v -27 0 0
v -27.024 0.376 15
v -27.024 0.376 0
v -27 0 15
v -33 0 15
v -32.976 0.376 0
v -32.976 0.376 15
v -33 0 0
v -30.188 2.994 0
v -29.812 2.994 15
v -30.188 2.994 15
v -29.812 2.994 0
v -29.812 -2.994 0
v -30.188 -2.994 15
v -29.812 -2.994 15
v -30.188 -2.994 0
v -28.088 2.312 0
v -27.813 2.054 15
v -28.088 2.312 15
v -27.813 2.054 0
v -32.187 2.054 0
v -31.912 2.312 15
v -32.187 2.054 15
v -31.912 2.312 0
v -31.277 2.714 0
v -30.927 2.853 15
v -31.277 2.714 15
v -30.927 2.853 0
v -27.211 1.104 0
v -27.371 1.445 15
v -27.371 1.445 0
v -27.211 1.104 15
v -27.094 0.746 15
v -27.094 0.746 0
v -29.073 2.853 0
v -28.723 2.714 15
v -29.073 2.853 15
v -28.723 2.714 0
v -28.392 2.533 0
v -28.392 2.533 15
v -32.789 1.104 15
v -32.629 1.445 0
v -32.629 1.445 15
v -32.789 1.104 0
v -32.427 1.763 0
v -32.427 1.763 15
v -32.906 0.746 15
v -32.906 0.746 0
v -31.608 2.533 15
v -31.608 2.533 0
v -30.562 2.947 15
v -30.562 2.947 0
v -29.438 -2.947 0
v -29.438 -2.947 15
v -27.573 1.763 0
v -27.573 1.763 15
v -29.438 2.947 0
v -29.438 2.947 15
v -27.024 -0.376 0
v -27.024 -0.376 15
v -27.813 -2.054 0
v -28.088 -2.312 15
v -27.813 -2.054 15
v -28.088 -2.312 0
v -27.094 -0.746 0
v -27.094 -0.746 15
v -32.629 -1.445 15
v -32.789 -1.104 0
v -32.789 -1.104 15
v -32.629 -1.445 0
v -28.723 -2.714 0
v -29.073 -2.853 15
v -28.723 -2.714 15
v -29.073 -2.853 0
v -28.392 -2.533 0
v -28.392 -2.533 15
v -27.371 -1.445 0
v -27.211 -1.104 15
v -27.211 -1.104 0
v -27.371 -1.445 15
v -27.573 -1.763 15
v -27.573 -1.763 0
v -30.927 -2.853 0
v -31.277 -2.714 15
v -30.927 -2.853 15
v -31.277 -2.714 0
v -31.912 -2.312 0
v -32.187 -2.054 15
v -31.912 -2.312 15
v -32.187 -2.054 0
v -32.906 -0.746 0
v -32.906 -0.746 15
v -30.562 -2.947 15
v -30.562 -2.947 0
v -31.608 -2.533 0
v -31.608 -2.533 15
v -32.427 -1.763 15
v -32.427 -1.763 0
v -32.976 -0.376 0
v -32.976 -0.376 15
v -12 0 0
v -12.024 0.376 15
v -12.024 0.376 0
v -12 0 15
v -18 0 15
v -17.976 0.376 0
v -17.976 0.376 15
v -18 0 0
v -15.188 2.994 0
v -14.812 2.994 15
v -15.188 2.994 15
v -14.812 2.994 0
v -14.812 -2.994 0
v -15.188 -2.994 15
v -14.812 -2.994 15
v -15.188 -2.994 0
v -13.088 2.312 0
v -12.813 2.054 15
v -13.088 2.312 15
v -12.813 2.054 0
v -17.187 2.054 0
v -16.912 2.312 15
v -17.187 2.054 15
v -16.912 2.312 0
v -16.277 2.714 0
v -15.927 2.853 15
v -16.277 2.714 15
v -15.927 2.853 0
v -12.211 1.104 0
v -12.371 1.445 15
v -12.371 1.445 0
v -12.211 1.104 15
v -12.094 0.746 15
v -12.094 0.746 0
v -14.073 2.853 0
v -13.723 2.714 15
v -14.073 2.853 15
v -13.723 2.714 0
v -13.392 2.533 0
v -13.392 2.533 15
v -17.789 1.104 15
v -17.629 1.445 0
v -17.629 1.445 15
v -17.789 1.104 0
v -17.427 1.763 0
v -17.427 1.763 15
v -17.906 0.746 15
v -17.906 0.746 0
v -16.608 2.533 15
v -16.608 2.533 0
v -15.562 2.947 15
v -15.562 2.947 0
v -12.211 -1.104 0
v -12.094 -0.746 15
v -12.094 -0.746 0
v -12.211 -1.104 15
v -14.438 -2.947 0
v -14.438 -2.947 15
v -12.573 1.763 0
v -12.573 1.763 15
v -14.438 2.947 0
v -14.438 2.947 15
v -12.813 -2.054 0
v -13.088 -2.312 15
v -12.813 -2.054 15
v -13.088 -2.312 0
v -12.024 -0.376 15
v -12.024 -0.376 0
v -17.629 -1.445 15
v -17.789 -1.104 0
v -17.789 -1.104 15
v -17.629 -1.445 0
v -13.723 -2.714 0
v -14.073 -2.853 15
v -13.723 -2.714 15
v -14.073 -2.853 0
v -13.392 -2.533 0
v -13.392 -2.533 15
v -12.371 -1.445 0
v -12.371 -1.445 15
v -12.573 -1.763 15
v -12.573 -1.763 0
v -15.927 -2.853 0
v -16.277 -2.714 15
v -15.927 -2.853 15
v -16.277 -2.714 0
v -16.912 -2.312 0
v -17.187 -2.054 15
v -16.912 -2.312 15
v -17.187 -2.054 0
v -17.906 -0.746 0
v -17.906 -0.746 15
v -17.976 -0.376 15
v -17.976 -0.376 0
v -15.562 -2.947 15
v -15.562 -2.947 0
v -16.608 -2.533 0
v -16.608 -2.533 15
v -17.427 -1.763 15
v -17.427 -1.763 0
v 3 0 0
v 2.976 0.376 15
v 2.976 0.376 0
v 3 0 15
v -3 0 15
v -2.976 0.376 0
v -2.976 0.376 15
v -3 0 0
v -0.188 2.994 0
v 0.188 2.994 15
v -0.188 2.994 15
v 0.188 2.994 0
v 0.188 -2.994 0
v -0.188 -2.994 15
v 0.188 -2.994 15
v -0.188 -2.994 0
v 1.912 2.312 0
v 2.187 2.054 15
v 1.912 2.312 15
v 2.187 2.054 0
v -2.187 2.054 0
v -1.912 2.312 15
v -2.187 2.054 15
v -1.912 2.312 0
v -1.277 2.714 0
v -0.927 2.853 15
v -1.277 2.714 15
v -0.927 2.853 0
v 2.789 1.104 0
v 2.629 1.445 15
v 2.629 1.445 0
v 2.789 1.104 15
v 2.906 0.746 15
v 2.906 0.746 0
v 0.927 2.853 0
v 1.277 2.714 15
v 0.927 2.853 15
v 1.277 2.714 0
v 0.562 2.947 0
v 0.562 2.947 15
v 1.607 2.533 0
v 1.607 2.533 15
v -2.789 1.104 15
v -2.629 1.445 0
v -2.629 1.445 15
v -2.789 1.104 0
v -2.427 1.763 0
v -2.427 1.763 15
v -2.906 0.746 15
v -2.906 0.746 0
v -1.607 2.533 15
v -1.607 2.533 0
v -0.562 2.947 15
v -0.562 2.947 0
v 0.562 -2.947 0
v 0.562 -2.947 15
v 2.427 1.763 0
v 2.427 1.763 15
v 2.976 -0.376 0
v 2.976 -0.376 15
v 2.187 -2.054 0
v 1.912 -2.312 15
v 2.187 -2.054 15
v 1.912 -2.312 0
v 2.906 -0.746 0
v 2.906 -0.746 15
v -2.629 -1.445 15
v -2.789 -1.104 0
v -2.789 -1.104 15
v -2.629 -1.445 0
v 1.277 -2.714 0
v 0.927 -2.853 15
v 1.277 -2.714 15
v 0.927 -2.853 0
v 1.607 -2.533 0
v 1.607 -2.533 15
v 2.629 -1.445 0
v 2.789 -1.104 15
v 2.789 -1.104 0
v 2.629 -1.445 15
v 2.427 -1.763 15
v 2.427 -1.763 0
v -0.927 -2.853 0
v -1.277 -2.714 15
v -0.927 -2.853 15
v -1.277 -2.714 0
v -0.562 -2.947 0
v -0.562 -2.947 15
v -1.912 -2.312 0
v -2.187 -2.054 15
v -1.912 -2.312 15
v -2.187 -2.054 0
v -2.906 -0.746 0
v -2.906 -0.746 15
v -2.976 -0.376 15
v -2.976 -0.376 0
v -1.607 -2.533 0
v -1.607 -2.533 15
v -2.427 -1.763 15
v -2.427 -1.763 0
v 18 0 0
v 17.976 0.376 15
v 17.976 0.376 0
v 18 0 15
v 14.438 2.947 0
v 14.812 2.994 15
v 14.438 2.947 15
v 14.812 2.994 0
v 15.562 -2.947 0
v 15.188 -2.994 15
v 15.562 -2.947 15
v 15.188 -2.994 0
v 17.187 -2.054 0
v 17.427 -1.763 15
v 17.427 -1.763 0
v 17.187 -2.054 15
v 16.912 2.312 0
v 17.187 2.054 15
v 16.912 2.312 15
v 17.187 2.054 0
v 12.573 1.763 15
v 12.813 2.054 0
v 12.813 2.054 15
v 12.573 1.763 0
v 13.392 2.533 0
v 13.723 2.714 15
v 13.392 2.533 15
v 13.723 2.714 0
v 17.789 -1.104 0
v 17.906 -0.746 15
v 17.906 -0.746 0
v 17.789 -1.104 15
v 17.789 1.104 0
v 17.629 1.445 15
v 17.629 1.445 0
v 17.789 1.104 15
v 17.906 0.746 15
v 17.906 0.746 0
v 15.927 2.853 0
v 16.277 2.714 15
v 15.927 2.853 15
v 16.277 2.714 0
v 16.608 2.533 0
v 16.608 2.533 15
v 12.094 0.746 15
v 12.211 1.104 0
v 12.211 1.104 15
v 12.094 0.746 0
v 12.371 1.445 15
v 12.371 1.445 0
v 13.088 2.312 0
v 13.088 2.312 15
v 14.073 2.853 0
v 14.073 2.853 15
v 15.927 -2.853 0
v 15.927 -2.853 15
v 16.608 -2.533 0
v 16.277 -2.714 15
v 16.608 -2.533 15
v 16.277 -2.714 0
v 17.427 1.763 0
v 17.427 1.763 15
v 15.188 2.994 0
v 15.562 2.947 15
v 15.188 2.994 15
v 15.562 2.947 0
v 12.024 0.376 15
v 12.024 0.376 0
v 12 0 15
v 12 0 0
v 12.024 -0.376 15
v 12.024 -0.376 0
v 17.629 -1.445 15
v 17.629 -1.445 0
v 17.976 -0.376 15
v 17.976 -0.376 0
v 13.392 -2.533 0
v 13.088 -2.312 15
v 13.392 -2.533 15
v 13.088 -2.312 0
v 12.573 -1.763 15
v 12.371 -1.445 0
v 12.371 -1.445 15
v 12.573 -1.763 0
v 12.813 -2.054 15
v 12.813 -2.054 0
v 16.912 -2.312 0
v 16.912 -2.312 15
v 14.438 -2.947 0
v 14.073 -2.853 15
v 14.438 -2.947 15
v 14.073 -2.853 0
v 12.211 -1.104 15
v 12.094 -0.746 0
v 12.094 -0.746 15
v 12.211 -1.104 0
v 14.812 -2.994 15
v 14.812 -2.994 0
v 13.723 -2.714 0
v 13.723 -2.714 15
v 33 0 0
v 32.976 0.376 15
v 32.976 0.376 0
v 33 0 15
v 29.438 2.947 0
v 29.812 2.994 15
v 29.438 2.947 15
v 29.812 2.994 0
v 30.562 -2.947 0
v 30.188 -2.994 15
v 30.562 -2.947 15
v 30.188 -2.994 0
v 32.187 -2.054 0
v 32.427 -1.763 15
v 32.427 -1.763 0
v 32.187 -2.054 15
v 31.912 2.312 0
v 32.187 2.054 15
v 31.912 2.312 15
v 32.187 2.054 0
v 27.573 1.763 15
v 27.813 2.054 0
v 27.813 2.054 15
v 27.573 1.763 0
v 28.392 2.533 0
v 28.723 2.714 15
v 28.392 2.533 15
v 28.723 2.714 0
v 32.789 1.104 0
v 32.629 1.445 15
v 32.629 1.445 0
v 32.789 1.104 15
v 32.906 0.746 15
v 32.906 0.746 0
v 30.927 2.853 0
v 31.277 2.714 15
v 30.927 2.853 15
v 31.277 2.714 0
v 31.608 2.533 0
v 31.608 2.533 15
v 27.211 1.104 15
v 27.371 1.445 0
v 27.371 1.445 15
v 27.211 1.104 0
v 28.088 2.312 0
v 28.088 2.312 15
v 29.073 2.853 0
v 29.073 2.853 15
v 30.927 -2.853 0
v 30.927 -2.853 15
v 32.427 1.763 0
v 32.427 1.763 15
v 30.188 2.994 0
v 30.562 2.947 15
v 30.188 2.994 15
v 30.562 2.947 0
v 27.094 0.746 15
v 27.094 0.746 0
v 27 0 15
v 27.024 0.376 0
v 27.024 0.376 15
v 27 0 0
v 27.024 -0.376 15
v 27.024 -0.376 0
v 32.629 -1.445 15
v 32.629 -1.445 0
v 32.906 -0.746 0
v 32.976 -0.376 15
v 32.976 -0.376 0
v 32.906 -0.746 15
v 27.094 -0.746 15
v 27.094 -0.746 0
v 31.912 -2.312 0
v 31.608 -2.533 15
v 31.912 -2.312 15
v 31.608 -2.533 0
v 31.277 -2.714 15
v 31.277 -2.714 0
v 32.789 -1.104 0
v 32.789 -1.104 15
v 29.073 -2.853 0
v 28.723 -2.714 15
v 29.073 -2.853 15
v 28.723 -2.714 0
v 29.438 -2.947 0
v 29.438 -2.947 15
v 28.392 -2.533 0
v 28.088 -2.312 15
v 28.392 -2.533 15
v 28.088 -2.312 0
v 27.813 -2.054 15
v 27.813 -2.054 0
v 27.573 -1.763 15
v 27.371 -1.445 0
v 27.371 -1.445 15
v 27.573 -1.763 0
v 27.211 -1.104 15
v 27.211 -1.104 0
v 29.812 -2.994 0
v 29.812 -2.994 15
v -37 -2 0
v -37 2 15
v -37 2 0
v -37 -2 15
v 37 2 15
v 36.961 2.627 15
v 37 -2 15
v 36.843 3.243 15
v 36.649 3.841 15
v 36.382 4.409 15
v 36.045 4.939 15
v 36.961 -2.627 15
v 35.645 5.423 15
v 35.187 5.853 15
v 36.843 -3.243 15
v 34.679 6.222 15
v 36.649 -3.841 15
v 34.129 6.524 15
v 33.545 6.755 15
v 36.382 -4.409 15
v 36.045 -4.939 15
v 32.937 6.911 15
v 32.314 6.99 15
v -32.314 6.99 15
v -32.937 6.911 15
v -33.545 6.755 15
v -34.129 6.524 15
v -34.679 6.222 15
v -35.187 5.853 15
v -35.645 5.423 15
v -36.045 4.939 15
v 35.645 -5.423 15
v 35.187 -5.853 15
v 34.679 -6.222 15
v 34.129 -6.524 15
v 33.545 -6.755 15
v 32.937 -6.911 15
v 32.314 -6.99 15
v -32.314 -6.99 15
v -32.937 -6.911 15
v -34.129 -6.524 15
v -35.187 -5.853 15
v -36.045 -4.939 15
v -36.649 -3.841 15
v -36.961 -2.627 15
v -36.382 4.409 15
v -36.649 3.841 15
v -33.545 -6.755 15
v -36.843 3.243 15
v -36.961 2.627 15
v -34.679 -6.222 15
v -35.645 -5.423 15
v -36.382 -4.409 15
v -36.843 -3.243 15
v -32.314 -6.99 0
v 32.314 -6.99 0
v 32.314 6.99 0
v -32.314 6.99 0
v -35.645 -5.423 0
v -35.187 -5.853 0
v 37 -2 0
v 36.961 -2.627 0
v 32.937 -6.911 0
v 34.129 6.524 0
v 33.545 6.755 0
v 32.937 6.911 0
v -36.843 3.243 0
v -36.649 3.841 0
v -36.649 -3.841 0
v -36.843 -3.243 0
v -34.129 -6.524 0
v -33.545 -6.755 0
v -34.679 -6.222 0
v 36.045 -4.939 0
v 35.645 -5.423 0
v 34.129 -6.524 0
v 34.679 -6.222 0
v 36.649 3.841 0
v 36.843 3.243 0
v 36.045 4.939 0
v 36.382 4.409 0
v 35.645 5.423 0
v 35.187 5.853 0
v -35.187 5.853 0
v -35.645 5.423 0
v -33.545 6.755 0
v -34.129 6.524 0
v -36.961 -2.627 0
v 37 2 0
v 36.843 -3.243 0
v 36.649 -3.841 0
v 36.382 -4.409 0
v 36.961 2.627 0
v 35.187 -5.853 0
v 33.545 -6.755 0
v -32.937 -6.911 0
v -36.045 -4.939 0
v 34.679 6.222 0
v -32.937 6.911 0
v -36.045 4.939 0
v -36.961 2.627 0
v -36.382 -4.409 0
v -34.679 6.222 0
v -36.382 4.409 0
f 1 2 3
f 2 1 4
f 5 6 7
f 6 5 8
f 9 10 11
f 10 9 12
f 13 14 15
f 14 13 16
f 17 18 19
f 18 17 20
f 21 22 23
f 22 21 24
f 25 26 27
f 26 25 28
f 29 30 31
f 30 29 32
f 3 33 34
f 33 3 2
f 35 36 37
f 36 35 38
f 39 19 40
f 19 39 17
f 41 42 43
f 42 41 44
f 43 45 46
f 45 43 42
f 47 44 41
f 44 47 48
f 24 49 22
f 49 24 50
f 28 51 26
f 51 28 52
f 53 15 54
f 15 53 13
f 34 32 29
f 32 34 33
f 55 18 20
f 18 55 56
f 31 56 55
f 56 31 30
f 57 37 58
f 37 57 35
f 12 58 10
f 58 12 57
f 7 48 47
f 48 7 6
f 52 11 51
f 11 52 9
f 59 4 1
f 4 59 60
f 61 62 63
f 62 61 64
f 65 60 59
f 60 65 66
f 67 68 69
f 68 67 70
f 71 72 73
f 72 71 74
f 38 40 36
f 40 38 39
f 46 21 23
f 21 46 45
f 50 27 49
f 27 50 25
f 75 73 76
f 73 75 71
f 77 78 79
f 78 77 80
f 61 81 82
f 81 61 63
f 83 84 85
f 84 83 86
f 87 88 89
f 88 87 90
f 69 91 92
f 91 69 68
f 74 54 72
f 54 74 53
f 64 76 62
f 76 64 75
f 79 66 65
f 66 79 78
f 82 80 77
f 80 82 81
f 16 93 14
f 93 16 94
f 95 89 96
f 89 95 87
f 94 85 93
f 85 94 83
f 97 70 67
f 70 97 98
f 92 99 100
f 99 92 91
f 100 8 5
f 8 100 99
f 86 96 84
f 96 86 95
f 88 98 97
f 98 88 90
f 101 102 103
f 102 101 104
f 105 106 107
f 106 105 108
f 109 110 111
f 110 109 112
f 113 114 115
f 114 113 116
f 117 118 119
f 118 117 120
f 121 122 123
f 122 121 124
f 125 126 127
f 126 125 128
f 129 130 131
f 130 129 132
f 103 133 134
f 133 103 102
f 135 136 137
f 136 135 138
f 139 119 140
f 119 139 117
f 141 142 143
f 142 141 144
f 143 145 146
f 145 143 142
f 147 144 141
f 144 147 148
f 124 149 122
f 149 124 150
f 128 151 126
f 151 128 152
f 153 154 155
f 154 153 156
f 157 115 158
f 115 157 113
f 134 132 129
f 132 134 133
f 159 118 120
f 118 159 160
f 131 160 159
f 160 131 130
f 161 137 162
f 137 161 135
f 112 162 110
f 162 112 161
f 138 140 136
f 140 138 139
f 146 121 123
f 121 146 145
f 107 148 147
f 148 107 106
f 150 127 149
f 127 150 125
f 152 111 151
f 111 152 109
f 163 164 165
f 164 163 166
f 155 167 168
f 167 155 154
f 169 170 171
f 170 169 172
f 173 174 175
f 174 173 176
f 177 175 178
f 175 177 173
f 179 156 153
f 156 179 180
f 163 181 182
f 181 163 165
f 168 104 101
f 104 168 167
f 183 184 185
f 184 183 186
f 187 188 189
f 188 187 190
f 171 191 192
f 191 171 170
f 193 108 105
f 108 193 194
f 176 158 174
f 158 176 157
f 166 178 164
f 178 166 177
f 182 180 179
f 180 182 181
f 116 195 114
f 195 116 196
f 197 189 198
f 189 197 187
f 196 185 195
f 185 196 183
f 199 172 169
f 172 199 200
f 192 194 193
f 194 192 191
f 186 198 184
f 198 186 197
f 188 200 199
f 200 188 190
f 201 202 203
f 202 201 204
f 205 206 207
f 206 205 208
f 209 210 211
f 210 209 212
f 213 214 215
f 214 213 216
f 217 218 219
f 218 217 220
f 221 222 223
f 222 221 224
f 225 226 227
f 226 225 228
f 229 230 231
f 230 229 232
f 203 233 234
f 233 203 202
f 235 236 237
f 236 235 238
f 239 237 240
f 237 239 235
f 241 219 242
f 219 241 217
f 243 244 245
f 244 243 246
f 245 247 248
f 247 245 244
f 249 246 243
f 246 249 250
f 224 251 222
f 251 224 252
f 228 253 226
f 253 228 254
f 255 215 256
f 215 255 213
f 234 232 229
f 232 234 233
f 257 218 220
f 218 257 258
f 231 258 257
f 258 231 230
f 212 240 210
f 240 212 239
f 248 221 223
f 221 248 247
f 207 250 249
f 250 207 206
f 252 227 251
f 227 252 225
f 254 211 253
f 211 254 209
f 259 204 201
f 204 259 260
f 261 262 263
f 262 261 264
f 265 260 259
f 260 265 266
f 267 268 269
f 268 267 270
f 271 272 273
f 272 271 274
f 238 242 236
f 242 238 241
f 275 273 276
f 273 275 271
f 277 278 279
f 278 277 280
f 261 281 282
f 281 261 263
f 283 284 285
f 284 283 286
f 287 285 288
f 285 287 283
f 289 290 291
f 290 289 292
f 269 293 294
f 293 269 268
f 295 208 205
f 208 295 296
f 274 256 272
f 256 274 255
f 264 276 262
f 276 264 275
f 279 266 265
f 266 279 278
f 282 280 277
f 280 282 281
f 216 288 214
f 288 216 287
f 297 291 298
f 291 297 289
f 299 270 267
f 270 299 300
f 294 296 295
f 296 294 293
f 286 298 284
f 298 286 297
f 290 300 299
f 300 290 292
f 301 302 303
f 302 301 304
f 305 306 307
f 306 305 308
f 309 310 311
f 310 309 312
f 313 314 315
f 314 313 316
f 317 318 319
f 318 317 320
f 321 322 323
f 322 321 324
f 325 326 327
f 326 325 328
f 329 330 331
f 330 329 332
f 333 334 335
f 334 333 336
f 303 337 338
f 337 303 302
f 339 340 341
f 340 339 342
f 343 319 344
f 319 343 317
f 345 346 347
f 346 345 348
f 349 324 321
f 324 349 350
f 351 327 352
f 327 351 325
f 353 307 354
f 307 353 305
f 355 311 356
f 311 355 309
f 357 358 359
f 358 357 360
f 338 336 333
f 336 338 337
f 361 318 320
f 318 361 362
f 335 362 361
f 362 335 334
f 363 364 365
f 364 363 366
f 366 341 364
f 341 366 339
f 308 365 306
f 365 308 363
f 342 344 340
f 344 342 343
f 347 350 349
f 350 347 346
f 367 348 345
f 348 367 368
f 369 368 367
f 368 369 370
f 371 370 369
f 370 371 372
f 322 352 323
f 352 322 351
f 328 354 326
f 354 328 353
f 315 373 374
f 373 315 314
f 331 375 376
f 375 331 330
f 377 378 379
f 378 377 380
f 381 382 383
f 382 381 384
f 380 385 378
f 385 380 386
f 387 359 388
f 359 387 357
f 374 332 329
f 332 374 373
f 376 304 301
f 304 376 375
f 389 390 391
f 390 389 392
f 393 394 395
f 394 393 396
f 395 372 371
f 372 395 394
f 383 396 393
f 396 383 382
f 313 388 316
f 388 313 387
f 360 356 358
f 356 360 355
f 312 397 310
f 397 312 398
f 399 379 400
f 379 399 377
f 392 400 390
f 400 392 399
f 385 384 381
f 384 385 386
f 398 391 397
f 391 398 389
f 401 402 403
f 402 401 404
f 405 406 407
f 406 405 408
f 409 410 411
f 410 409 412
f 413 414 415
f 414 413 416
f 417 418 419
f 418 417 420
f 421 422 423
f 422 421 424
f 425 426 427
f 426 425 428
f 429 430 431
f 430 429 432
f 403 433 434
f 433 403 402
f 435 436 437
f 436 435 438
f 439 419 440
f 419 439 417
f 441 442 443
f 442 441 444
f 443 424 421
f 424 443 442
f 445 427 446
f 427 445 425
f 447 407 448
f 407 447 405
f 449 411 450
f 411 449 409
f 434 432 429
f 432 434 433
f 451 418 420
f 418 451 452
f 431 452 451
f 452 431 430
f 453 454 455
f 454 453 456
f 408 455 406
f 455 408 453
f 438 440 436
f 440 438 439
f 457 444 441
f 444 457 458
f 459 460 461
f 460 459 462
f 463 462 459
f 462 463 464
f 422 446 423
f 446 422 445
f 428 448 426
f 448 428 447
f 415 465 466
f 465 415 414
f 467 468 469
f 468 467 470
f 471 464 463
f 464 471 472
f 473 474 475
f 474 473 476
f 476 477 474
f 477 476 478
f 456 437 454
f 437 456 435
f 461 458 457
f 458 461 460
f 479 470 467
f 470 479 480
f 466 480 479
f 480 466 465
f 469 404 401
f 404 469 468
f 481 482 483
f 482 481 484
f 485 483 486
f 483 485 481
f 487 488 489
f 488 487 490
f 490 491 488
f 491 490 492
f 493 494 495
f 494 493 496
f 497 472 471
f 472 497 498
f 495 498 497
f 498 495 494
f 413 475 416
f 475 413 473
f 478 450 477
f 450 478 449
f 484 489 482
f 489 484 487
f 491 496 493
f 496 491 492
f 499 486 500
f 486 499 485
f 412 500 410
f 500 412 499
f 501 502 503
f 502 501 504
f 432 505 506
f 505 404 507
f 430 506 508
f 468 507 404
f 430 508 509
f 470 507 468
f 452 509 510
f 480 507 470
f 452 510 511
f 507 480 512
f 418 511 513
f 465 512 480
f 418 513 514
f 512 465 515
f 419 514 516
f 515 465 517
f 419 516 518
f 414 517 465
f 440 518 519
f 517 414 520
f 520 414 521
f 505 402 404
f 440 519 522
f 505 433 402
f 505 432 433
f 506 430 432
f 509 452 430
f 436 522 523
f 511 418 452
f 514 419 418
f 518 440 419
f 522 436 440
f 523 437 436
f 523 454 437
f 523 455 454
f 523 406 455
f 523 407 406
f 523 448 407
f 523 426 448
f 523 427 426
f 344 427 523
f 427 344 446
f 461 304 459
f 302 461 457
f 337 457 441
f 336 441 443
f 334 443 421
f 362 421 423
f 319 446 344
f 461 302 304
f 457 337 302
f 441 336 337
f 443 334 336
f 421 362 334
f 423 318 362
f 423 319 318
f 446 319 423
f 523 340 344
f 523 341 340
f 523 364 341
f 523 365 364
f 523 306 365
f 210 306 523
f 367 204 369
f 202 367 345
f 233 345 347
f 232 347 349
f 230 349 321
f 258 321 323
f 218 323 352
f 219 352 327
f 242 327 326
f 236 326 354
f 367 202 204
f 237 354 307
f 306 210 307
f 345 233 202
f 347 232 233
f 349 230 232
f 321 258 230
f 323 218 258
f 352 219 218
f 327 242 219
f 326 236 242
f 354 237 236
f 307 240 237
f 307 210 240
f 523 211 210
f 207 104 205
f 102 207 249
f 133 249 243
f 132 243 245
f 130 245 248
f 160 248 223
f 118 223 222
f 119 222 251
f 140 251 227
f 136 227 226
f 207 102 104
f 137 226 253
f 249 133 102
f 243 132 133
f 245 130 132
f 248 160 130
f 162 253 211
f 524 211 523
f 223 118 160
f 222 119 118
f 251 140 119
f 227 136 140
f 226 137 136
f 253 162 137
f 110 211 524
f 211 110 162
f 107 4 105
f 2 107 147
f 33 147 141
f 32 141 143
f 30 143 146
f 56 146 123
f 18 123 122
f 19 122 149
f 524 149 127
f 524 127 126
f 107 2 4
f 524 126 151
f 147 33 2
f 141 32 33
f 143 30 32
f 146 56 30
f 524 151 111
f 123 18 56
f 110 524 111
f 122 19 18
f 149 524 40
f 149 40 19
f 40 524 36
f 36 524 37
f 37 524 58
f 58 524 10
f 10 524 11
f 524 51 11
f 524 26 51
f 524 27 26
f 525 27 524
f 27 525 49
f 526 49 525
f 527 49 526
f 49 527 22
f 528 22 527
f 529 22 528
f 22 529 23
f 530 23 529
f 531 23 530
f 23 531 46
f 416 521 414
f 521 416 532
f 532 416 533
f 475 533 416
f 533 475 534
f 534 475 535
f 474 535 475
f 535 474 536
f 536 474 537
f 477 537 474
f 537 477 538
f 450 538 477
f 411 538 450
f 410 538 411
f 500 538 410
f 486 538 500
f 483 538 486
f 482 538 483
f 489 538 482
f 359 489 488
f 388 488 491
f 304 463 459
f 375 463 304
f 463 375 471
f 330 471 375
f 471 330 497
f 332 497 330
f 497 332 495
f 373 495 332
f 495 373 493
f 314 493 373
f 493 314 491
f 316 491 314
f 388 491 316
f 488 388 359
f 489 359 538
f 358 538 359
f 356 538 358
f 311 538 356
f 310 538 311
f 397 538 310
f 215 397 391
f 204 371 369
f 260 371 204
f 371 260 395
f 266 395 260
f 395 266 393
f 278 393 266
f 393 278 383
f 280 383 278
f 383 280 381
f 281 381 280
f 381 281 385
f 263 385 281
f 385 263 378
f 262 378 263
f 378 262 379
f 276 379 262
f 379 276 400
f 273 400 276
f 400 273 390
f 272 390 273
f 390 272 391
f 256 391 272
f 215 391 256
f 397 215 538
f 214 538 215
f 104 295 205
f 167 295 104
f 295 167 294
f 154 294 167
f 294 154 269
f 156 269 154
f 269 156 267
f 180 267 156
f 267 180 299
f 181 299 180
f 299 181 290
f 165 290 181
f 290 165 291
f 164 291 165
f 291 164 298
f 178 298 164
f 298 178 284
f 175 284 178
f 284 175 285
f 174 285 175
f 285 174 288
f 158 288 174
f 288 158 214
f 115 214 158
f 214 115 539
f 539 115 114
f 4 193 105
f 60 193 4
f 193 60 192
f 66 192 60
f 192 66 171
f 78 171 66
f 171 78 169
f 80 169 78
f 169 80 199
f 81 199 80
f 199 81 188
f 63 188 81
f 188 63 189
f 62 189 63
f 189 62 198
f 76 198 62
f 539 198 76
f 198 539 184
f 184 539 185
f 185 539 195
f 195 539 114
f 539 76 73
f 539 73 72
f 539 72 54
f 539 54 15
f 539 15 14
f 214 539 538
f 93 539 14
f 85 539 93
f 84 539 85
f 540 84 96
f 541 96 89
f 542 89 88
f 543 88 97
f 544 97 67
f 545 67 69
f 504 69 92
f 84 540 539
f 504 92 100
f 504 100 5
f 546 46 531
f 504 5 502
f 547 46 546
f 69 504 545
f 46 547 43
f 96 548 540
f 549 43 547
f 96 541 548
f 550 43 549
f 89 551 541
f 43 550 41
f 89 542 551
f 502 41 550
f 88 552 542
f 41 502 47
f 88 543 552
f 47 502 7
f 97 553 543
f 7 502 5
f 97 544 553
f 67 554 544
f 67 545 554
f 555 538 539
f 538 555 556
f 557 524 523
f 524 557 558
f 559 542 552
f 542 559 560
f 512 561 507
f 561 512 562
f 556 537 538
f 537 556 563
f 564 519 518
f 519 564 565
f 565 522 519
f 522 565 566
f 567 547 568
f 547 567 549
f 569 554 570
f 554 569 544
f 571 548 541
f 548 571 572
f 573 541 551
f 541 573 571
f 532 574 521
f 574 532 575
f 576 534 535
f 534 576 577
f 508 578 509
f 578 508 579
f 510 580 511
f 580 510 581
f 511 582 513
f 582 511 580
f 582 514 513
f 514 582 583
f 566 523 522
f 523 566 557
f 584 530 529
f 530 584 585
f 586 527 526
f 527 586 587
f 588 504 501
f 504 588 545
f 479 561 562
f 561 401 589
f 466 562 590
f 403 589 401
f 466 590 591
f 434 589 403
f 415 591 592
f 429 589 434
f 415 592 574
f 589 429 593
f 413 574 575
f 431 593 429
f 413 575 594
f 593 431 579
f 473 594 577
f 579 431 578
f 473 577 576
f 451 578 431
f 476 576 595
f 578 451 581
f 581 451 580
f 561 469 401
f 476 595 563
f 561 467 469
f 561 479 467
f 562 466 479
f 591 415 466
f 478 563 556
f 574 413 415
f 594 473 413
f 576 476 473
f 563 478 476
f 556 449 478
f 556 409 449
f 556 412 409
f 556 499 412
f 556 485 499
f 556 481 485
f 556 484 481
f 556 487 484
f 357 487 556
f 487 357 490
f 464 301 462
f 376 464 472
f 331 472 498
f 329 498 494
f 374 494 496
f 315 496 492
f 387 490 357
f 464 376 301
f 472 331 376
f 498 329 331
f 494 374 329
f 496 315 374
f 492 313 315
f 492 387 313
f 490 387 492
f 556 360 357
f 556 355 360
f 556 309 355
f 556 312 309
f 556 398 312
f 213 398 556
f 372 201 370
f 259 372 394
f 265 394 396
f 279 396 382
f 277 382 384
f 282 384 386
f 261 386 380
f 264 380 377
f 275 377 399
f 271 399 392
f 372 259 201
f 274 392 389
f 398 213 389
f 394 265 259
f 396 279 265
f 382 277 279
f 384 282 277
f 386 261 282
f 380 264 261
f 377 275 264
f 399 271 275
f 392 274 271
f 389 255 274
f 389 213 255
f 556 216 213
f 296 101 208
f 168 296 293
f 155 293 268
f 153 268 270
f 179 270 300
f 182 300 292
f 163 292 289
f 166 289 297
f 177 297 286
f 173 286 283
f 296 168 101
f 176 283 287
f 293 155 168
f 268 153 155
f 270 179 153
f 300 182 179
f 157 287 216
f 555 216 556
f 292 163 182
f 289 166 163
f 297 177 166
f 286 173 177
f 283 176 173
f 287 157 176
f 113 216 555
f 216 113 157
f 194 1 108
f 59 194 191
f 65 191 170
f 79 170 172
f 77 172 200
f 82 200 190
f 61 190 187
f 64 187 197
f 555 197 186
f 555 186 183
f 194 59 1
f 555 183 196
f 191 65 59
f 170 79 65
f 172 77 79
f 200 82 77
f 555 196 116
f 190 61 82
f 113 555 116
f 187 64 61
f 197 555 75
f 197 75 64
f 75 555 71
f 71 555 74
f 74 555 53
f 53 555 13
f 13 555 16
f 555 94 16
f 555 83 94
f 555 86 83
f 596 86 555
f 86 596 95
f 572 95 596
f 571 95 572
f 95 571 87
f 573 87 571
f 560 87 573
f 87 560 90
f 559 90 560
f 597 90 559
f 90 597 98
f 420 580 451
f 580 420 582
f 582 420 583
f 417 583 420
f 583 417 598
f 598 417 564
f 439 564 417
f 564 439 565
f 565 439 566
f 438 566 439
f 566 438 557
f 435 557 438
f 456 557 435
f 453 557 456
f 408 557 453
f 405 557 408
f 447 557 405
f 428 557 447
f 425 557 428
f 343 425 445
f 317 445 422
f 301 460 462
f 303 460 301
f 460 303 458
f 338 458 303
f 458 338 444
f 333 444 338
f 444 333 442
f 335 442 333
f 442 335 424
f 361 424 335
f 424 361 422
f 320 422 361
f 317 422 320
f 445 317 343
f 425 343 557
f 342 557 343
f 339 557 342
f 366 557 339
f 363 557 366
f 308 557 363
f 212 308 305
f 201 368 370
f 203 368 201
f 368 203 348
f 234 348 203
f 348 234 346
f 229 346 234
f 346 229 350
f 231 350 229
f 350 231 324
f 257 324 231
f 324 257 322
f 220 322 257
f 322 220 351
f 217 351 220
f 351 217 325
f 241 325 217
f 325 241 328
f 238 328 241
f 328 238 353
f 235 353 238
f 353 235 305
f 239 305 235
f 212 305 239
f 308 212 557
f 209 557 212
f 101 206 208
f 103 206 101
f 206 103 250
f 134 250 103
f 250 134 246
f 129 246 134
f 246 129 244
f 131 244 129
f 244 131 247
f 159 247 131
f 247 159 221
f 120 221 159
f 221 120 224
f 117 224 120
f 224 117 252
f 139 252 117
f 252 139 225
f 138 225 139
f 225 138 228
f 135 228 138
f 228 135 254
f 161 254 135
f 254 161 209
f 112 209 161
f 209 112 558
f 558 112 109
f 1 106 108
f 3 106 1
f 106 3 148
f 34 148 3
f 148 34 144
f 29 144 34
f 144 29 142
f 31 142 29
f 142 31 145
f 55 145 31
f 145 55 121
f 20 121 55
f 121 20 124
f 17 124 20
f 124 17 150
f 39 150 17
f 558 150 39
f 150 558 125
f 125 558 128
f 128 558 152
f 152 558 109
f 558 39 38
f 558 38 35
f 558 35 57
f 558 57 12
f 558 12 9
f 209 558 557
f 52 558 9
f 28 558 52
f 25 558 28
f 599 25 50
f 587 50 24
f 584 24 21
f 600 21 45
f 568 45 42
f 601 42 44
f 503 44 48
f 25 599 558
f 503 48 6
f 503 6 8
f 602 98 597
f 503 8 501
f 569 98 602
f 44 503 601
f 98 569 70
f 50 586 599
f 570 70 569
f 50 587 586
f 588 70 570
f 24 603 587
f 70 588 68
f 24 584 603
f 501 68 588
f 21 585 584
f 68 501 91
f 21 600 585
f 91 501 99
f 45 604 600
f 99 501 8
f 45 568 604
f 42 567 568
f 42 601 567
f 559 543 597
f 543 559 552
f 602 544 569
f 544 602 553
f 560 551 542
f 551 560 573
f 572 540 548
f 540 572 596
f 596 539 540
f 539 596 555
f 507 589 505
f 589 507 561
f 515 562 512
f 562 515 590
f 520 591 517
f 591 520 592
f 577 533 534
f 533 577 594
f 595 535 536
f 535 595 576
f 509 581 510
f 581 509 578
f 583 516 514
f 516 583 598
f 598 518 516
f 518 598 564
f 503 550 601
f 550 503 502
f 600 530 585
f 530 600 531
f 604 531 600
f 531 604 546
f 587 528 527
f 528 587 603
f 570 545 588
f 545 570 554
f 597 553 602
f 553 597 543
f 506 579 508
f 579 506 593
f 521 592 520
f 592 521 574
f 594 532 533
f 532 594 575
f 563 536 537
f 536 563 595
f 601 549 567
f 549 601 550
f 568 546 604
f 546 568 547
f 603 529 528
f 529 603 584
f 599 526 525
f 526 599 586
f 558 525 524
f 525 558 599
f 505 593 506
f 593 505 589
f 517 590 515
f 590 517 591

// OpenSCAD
$fn = 50;


difference() {
	union() {
		hull() {
			translate(v = [-32.0000000000, 2.0000000000, 0]) {
				cylinder(h = 15, r = 5);
			}
			translate(v = [32.0000000000, 2.0000000000, 0]) {
				cylinder(h = 15, r = 5);
			}
			translate(v = [-32.0000000000, -2.0000000000, 0]) {
				cylinder(h = 15, r = 5);
			}
			translate(v = [32.0000000000, -2.0000000000, 0]) {
				cylinder(h = 15, r = 5);
			}
		}
	}
	union() {
		translate(v = [-30.0000000000, 0.0000000000, 0]) {
			translate(v = [0, 0, -100]) {
				cylinder(h = 200, r = 3.0000000000);
			}
		}
		translate(v = [-15.0000000000, 0.0000000000, 0]) {
			translate(v = [0, 0, -100]) {
				cylinder(h = 200, r = 3.0000000000);
			}
		}
		translate(v = [0, 0, -100]) {
			cylinder(h = 200, r = 3.0000000000);
		}
		translate(v = [15.0000000000, 0.0000000000, 0]) {
			translate(v = [0, 0, -100]) {
				cylinder(h = 200, r = 3.0000000000);
			}
		}
		translate(v = [30.0000000000, 0.0000000000, 0]) {
			translate(v = [0, 0, -100]) {
				cylinder(h = 200, r = 3.0000000000);
			}
		}
	}
}
